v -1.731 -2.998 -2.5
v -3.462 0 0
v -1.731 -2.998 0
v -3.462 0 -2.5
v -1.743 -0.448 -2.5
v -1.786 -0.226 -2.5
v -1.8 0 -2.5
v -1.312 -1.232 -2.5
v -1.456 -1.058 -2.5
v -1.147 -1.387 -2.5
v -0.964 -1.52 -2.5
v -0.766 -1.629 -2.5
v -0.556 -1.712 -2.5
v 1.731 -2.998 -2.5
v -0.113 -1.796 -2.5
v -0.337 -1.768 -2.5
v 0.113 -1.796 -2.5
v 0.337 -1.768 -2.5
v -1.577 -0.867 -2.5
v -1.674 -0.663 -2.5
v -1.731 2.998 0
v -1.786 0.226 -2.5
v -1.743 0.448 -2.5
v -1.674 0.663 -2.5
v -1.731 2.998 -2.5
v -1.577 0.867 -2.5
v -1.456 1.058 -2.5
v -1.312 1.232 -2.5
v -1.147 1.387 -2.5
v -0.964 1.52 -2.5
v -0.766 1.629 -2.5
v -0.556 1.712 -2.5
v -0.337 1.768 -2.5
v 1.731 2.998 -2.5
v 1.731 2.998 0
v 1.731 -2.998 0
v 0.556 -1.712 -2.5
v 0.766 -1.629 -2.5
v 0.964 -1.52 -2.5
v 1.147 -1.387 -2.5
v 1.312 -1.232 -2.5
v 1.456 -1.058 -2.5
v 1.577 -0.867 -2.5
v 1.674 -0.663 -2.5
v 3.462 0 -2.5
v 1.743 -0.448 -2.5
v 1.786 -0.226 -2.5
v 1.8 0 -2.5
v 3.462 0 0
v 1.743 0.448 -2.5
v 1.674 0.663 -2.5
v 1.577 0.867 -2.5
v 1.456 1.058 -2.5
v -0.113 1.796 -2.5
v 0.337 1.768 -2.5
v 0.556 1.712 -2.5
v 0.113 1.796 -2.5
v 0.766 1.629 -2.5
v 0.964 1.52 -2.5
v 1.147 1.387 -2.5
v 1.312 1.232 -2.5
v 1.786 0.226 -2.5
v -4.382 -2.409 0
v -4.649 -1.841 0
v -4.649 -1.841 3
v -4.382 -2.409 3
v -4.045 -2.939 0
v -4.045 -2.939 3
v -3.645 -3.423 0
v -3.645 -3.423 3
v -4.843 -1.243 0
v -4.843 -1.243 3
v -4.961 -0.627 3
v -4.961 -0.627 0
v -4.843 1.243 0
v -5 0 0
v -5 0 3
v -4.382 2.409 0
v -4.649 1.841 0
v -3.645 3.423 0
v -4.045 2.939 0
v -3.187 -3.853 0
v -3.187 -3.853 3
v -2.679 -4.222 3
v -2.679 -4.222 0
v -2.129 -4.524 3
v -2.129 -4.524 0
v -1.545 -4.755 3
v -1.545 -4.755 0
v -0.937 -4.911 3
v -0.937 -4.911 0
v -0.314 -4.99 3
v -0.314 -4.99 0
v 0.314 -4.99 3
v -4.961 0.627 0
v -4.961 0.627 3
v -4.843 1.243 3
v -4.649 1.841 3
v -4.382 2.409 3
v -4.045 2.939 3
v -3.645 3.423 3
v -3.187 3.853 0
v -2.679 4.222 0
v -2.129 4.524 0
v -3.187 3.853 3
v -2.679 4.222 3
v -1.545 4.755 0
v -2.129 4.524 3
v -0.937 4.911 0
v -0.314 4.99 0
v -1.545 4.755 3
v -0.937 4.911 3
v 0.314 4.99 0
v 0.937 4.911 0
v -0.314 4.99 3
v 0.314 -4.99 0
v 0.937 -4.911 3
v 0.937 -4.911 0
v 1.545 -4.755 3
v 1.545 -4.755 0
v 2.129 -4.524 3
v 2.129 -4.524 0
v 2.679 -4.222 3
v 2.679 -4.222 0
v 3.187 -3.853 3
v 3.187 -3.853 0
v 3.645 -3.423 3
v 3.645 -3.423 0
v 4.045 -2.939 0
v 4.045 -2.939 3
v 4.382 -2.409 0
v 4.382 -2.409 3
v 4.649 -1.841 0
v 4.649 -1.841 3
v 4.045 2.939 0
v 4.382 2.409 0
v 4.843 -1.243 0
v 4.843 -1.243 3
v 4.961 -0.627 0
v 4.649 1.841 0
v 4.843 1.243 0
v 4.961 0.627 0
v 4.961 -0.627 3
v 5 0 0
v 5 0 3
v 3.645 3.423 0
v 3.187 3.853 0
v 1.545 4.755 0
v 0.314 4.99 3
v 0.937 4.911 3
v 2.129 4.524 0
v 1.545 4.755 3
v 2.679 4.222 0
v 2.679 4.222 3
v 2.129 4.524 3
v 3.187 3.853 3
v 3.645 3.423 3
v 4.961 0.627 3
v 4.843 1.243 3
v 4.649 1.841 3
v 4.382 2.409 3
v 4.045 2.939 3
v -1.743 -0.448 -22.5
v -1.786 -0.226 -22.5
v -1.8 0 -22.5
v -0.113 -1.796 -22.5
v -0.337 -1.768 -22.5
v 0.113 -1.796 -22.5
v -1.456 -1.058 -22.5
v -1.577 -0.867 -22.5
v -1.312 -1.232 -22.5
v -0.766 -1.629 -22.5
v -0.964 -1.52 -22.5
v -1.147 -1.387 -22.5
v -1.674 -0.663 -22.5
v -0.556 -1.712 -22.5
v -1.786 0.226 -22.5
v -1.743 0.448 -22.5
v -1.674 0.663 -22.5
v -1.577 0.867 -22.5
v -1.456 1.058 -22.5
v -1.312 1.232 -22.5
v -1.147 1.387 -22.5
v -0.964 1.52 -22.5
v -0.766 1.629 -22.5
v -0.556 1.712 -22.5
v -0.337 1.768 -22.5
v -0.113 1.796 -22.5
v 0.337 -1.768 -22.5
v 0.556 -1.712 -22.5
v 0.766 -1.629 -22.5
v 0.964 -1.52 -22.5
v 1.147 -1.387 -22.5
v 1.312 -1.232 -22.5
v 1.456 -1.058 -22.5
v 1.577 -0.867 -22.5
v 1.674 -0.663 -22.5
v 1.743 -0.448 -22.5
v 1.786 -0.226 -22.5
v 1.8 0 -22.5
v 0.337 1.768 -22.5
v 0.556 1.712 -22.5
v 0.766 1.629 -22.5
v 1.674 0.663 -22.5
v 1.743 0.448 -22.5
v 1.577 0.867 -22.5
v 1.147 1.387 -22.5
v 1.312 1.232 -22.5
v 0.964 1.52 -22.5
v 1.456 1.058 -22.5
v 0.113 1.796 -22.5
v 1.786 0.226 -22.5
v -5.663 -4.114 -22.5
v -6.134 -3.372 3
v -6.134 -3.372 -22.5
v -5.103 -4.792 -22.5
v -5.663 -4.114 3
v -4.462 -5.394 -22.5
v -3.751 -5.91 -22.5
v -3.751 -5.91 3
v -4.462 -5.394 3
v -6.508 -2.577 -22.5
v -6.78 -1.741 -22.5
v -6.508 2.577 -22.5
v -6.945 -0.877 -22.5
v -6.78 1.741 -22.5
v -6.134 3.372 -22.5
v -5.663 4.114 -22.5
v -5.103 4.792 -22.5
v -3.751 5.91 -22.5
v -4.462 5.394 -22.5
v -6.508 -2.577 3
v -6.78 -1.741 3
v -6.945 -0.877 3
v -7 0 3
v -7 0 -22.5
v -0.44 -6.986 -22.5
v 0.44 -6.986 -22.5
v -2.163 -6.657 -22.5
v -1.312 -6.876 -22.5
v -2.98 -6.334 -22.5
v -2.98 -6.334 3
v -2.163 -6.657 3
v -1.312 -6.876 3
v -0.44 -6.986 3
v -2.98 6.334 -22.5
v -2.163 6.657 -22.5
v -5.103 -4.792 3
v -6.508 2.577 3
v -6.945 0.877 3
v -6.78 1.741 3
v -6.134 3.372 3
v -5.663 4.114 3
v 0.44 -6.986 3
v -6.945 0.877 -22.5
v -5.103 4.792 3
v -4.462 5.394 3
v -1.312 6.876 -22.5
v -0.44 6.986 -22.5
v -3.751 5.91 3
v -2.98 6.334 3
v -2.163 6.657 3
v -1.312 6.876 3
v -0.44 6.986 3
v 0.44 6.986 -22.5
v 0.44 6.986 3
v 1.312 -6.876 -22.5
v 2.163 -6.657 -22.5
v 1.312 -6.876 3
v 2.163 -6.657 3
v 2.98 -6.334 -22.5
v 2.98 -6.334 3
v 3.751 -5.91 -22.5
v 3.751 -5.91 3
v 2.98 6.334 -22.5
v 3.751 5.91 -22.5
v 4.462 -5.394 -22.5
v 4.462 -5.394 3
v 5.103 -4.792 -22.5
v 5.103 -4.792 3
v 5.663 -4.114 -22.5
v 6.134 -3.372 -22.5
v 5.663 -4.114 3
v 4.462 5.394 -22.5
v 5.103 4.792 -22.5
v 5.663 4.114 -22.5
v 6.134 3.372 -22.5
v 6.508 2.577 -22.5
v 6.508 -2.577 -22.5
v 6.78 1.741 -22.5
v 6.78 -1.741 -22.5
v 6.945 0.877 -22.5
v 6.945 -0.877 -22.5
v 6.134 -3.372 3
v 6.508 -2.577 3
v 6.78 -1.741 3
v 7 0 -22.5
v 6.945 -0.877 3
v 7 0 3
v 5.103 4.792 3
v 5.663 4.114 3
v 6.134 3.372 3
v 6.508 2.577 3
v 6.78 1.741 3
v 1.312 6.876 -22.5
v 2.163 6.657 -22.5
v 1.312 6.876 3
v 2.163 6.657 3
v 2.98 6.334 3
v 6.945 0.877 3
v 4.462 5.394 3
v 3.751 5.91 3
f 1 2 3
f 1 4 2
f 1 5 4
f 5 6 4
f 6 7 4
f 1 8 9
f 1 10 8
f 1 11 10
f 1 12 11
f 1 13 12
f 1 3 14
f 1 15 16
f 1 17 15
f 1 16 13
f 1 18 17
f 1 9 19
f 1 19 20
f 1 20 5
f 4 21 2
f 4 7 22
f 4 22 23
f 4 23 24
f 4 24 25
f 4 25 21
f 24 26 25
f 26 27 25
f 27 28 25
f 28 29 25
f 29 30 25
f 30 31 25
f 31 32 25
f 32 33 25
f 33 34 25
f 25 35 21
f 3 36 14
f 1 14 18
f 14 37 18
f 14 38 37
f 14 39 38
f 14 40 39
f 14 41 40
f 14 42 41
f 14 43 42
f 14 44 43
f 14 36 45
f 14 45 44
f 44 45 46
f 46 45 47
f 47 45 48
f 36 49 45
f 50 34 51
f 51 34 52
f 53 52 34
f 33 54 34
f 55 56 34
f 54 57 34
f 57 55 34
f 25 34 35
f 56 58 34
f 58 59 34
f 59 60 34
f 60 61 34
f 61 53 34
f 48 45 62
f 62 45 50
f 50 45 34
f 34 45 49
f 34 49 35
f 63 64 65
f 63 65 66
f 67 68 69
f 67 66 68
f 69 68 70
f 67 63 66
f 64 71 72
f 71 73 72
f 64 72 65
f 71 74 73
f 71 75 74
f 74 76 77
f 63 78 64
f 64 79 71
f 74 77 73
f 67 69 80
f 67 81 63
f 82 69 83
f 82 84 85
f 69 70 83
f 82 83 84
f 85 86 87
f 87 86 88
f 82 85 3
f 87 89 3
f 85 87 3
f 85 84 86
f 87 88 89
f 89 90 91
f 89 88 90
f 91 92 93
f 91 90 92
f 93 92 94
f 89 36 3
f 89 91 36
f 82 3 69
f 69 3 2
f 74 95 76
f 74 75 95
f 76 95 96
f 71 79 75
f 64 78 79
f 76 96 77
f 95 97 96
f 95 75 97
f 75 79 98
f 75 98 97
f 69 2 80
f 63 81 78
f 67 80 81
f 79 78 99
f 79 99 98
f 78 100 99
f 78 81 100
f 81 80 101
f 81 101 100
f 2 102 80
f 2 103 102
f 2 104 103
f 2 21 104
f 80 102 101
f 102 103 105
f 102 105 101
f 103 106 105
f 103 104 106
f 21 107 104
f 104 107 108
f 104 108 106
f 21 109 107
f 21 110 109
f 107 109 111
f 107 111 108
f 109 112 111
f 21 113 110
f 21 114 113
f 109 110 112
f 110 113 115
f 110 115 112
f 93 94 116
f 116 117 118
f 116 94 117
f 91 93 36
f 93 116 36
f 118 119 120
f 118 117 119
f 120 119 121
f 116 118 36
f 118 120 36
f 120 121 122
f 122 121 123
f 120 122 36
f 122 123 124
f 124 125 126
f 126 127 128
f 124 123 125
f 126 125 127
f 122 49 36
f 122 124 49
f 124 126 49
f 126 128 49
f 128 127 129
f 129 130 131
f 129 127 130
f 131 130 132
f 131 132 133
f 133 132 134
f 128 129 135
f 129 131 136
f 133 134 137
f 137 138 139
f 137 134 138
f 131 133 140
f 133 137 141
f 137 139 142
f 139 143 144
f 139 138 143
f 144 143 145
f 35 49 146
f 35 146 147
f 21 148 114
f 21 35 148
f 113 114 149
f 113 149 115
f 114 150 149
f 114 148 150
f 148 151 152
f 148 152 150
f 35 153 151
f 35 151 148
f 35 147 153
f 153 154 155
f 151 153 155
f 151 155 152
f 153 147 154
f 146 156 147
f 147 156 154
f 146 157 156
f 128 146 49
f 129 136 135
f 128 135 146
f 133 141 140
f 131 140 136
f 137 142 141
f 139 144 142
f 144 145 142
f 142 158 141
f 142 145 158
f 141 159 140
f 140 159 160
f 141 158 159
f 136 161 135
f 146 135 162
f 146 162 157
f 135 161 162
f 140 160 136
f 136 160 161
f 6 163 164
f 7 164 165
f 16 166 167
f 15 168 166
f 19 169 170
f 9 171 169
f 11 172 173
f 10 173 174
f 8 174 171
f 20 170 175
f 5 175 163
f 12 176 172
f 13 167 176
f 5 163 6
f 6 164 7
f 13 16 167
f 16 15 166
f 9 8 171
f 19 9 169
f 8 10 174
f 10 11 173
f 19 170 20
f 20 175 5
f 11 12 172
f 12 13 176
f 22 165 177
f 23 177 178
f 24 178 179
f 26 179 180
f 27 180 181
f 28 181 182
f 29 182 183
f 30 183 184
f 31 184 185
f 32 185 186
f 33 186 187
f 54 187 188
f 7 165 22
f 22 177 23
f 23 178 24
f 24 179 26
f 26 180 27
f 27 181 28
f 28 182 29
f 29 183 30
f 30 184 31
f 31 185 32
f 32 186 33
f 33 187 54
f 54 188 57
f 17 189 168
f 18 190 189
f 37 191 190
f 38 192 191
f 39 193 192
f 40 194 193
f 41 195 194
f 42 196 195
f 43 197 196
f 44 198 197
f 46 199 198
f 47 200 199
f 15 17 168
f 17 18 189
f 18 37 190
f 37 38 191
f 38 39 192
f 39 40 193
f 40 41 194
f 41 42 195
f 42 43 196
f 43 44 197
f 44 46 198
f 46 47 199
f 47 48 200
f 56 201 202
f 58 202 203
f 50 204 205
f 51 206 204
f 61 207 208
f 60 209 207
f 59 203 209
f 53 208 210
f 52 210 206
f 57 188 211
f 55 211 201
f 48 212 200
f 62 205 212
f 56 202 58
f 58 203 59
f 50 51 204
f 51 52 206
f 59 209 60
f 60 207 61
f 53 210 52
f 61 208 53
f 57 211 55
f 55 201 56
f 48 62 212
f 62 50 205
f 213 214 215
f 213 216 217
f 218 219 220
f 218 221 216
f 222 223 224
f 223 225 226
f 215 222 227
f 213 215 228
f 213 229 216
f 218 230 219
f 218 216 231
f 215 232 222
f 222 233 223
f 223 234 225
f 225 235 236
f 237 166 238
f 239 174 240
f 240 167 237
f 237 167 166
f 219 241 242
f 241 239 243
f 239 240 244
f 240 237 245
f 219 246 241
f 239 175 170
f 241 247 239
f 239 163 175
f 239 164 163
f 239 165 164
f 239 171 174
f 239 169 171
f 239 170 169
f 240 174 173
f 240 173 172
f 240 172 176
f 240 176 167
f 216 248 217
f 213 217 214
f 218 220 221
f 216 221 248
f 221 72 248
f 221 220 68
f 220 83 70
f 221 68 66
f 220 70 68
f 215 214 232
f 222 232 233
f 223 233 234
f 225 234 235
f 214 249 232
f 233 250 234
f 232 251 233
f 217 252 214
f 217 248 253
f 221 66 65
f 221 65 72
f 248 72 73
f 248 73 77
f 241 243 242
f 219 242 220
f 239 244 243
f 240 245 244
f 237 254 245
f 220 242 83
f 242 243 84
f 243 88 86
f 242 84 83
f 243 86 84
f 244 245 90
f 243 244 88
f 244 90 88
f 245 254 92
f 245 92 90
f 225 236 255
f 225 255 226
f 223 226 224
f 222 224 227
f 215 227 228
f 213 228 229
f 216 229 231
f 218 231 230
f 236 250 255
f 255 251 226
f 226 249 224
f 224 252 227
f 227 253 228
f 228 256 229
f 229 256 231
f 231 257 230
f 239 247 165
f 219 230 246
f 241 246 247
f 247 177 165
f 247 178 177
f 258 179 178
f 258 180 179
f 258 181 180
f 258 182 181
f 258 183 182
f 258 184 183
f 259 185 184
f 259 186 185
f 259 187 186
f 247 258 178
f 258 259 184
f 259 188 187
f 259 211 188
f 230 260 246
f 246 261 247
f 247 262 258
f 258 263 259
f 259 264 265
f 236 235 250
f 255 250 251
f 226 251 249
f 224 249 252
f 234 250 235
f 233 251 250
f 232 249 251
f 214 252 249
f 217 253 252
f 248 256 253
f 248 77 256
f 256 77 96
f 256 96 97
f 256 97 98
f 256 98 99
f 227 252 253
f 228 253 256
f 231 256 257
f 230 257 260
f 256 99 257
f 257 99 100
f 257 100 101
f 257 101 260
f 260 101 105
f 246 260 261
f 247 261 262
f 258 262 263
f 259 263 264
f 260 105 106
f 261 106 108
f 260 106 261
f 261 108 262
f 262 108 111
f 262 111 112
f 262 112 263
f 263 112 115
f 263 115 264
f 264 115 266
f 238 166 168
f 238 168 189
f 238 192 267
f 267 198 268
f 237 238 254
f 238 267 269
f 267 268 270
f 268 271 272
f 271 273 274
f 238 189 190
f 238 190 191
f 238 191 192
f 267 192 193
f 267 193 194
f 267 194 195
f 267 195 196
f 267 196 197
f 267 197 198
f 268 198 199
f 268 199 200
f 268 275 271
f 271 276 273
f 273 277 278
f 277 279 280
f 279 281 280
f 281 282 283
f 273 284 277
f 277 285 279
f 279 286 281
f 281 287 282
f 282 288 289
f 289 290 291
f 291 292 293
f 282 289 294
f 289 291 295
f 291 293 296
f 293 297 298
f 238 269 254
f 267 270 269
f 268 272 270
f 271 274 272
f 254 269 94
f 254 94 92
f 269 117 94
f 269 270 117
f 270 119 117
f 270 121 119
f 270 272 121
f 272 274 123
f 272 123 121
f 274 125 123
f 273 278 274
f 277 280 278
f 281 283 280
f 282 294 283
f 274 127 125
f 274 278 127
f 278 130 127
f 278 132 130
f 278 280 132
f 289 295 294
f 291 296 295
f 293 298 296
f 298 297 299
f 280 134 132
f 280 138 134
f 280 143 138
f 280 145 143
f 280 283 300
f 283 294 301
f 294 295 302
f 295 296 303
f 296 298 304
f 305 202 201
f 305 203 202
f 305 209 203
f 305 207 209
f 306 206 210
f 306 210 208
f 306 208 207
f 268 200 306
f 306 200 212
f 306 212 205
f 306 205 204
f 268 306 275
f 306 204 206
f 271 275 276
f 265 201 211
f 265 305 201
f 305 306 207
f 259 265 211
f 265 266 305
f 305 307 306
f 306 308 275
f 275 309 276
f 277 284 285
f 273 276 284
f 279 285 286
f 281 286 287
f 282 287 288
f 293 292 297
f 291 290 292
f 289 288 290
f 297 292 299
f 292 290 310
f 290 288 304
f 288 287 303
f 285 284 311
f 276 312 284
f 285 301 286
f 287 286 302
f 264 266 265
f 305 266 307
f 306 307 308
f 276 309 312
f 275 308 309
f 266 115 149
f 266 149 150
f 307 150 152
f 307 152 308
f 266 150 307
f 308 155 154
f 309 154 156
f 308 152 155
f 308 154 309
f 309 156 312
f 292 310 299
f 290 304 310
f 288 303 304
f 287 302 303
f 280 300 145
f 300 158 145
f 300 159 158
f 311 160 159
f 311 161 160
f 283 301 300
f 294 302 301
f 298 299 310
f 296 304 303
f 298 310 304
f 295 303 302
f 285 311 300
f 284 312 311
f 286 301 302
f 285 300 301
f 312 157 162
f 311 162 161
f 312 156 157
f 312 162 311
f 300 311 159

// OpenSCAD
$fn = 50;

difference() {
	union() {
		translate(v = [0, 0, -22.5]) {
			cylinder(h = 25.5, r = 7.0);
		}
	}
	union() {
		translate(v = [0, 0, 0]) {
			rotate(a = [0, 0, 0]) {
				difference() {
					union() {
						translate(v = [0, 0, -2.5]) {
							linear_extrude(height = 2.5) {
								polygon(points = [[3.4619999999999997, 0.0], [1.7310000000000003, 2.9981799479017264], [-1.7309999999999992, 2.9981799479017264], [-3.4619999999999997, 4.2397272186481365e-16], [-1.7310000000000014, -2.998179947901726], [1.7309999999999977, -2.9981799479017277]]);
							}
						}
					}
					union();
				}
			}
		}
		#cylinder(h = 3, r = 5.0);
		#translate(v = [0, 0, -100.0]) {
			cylinder(h = 200, r = 1.8);
		}
	}
}
